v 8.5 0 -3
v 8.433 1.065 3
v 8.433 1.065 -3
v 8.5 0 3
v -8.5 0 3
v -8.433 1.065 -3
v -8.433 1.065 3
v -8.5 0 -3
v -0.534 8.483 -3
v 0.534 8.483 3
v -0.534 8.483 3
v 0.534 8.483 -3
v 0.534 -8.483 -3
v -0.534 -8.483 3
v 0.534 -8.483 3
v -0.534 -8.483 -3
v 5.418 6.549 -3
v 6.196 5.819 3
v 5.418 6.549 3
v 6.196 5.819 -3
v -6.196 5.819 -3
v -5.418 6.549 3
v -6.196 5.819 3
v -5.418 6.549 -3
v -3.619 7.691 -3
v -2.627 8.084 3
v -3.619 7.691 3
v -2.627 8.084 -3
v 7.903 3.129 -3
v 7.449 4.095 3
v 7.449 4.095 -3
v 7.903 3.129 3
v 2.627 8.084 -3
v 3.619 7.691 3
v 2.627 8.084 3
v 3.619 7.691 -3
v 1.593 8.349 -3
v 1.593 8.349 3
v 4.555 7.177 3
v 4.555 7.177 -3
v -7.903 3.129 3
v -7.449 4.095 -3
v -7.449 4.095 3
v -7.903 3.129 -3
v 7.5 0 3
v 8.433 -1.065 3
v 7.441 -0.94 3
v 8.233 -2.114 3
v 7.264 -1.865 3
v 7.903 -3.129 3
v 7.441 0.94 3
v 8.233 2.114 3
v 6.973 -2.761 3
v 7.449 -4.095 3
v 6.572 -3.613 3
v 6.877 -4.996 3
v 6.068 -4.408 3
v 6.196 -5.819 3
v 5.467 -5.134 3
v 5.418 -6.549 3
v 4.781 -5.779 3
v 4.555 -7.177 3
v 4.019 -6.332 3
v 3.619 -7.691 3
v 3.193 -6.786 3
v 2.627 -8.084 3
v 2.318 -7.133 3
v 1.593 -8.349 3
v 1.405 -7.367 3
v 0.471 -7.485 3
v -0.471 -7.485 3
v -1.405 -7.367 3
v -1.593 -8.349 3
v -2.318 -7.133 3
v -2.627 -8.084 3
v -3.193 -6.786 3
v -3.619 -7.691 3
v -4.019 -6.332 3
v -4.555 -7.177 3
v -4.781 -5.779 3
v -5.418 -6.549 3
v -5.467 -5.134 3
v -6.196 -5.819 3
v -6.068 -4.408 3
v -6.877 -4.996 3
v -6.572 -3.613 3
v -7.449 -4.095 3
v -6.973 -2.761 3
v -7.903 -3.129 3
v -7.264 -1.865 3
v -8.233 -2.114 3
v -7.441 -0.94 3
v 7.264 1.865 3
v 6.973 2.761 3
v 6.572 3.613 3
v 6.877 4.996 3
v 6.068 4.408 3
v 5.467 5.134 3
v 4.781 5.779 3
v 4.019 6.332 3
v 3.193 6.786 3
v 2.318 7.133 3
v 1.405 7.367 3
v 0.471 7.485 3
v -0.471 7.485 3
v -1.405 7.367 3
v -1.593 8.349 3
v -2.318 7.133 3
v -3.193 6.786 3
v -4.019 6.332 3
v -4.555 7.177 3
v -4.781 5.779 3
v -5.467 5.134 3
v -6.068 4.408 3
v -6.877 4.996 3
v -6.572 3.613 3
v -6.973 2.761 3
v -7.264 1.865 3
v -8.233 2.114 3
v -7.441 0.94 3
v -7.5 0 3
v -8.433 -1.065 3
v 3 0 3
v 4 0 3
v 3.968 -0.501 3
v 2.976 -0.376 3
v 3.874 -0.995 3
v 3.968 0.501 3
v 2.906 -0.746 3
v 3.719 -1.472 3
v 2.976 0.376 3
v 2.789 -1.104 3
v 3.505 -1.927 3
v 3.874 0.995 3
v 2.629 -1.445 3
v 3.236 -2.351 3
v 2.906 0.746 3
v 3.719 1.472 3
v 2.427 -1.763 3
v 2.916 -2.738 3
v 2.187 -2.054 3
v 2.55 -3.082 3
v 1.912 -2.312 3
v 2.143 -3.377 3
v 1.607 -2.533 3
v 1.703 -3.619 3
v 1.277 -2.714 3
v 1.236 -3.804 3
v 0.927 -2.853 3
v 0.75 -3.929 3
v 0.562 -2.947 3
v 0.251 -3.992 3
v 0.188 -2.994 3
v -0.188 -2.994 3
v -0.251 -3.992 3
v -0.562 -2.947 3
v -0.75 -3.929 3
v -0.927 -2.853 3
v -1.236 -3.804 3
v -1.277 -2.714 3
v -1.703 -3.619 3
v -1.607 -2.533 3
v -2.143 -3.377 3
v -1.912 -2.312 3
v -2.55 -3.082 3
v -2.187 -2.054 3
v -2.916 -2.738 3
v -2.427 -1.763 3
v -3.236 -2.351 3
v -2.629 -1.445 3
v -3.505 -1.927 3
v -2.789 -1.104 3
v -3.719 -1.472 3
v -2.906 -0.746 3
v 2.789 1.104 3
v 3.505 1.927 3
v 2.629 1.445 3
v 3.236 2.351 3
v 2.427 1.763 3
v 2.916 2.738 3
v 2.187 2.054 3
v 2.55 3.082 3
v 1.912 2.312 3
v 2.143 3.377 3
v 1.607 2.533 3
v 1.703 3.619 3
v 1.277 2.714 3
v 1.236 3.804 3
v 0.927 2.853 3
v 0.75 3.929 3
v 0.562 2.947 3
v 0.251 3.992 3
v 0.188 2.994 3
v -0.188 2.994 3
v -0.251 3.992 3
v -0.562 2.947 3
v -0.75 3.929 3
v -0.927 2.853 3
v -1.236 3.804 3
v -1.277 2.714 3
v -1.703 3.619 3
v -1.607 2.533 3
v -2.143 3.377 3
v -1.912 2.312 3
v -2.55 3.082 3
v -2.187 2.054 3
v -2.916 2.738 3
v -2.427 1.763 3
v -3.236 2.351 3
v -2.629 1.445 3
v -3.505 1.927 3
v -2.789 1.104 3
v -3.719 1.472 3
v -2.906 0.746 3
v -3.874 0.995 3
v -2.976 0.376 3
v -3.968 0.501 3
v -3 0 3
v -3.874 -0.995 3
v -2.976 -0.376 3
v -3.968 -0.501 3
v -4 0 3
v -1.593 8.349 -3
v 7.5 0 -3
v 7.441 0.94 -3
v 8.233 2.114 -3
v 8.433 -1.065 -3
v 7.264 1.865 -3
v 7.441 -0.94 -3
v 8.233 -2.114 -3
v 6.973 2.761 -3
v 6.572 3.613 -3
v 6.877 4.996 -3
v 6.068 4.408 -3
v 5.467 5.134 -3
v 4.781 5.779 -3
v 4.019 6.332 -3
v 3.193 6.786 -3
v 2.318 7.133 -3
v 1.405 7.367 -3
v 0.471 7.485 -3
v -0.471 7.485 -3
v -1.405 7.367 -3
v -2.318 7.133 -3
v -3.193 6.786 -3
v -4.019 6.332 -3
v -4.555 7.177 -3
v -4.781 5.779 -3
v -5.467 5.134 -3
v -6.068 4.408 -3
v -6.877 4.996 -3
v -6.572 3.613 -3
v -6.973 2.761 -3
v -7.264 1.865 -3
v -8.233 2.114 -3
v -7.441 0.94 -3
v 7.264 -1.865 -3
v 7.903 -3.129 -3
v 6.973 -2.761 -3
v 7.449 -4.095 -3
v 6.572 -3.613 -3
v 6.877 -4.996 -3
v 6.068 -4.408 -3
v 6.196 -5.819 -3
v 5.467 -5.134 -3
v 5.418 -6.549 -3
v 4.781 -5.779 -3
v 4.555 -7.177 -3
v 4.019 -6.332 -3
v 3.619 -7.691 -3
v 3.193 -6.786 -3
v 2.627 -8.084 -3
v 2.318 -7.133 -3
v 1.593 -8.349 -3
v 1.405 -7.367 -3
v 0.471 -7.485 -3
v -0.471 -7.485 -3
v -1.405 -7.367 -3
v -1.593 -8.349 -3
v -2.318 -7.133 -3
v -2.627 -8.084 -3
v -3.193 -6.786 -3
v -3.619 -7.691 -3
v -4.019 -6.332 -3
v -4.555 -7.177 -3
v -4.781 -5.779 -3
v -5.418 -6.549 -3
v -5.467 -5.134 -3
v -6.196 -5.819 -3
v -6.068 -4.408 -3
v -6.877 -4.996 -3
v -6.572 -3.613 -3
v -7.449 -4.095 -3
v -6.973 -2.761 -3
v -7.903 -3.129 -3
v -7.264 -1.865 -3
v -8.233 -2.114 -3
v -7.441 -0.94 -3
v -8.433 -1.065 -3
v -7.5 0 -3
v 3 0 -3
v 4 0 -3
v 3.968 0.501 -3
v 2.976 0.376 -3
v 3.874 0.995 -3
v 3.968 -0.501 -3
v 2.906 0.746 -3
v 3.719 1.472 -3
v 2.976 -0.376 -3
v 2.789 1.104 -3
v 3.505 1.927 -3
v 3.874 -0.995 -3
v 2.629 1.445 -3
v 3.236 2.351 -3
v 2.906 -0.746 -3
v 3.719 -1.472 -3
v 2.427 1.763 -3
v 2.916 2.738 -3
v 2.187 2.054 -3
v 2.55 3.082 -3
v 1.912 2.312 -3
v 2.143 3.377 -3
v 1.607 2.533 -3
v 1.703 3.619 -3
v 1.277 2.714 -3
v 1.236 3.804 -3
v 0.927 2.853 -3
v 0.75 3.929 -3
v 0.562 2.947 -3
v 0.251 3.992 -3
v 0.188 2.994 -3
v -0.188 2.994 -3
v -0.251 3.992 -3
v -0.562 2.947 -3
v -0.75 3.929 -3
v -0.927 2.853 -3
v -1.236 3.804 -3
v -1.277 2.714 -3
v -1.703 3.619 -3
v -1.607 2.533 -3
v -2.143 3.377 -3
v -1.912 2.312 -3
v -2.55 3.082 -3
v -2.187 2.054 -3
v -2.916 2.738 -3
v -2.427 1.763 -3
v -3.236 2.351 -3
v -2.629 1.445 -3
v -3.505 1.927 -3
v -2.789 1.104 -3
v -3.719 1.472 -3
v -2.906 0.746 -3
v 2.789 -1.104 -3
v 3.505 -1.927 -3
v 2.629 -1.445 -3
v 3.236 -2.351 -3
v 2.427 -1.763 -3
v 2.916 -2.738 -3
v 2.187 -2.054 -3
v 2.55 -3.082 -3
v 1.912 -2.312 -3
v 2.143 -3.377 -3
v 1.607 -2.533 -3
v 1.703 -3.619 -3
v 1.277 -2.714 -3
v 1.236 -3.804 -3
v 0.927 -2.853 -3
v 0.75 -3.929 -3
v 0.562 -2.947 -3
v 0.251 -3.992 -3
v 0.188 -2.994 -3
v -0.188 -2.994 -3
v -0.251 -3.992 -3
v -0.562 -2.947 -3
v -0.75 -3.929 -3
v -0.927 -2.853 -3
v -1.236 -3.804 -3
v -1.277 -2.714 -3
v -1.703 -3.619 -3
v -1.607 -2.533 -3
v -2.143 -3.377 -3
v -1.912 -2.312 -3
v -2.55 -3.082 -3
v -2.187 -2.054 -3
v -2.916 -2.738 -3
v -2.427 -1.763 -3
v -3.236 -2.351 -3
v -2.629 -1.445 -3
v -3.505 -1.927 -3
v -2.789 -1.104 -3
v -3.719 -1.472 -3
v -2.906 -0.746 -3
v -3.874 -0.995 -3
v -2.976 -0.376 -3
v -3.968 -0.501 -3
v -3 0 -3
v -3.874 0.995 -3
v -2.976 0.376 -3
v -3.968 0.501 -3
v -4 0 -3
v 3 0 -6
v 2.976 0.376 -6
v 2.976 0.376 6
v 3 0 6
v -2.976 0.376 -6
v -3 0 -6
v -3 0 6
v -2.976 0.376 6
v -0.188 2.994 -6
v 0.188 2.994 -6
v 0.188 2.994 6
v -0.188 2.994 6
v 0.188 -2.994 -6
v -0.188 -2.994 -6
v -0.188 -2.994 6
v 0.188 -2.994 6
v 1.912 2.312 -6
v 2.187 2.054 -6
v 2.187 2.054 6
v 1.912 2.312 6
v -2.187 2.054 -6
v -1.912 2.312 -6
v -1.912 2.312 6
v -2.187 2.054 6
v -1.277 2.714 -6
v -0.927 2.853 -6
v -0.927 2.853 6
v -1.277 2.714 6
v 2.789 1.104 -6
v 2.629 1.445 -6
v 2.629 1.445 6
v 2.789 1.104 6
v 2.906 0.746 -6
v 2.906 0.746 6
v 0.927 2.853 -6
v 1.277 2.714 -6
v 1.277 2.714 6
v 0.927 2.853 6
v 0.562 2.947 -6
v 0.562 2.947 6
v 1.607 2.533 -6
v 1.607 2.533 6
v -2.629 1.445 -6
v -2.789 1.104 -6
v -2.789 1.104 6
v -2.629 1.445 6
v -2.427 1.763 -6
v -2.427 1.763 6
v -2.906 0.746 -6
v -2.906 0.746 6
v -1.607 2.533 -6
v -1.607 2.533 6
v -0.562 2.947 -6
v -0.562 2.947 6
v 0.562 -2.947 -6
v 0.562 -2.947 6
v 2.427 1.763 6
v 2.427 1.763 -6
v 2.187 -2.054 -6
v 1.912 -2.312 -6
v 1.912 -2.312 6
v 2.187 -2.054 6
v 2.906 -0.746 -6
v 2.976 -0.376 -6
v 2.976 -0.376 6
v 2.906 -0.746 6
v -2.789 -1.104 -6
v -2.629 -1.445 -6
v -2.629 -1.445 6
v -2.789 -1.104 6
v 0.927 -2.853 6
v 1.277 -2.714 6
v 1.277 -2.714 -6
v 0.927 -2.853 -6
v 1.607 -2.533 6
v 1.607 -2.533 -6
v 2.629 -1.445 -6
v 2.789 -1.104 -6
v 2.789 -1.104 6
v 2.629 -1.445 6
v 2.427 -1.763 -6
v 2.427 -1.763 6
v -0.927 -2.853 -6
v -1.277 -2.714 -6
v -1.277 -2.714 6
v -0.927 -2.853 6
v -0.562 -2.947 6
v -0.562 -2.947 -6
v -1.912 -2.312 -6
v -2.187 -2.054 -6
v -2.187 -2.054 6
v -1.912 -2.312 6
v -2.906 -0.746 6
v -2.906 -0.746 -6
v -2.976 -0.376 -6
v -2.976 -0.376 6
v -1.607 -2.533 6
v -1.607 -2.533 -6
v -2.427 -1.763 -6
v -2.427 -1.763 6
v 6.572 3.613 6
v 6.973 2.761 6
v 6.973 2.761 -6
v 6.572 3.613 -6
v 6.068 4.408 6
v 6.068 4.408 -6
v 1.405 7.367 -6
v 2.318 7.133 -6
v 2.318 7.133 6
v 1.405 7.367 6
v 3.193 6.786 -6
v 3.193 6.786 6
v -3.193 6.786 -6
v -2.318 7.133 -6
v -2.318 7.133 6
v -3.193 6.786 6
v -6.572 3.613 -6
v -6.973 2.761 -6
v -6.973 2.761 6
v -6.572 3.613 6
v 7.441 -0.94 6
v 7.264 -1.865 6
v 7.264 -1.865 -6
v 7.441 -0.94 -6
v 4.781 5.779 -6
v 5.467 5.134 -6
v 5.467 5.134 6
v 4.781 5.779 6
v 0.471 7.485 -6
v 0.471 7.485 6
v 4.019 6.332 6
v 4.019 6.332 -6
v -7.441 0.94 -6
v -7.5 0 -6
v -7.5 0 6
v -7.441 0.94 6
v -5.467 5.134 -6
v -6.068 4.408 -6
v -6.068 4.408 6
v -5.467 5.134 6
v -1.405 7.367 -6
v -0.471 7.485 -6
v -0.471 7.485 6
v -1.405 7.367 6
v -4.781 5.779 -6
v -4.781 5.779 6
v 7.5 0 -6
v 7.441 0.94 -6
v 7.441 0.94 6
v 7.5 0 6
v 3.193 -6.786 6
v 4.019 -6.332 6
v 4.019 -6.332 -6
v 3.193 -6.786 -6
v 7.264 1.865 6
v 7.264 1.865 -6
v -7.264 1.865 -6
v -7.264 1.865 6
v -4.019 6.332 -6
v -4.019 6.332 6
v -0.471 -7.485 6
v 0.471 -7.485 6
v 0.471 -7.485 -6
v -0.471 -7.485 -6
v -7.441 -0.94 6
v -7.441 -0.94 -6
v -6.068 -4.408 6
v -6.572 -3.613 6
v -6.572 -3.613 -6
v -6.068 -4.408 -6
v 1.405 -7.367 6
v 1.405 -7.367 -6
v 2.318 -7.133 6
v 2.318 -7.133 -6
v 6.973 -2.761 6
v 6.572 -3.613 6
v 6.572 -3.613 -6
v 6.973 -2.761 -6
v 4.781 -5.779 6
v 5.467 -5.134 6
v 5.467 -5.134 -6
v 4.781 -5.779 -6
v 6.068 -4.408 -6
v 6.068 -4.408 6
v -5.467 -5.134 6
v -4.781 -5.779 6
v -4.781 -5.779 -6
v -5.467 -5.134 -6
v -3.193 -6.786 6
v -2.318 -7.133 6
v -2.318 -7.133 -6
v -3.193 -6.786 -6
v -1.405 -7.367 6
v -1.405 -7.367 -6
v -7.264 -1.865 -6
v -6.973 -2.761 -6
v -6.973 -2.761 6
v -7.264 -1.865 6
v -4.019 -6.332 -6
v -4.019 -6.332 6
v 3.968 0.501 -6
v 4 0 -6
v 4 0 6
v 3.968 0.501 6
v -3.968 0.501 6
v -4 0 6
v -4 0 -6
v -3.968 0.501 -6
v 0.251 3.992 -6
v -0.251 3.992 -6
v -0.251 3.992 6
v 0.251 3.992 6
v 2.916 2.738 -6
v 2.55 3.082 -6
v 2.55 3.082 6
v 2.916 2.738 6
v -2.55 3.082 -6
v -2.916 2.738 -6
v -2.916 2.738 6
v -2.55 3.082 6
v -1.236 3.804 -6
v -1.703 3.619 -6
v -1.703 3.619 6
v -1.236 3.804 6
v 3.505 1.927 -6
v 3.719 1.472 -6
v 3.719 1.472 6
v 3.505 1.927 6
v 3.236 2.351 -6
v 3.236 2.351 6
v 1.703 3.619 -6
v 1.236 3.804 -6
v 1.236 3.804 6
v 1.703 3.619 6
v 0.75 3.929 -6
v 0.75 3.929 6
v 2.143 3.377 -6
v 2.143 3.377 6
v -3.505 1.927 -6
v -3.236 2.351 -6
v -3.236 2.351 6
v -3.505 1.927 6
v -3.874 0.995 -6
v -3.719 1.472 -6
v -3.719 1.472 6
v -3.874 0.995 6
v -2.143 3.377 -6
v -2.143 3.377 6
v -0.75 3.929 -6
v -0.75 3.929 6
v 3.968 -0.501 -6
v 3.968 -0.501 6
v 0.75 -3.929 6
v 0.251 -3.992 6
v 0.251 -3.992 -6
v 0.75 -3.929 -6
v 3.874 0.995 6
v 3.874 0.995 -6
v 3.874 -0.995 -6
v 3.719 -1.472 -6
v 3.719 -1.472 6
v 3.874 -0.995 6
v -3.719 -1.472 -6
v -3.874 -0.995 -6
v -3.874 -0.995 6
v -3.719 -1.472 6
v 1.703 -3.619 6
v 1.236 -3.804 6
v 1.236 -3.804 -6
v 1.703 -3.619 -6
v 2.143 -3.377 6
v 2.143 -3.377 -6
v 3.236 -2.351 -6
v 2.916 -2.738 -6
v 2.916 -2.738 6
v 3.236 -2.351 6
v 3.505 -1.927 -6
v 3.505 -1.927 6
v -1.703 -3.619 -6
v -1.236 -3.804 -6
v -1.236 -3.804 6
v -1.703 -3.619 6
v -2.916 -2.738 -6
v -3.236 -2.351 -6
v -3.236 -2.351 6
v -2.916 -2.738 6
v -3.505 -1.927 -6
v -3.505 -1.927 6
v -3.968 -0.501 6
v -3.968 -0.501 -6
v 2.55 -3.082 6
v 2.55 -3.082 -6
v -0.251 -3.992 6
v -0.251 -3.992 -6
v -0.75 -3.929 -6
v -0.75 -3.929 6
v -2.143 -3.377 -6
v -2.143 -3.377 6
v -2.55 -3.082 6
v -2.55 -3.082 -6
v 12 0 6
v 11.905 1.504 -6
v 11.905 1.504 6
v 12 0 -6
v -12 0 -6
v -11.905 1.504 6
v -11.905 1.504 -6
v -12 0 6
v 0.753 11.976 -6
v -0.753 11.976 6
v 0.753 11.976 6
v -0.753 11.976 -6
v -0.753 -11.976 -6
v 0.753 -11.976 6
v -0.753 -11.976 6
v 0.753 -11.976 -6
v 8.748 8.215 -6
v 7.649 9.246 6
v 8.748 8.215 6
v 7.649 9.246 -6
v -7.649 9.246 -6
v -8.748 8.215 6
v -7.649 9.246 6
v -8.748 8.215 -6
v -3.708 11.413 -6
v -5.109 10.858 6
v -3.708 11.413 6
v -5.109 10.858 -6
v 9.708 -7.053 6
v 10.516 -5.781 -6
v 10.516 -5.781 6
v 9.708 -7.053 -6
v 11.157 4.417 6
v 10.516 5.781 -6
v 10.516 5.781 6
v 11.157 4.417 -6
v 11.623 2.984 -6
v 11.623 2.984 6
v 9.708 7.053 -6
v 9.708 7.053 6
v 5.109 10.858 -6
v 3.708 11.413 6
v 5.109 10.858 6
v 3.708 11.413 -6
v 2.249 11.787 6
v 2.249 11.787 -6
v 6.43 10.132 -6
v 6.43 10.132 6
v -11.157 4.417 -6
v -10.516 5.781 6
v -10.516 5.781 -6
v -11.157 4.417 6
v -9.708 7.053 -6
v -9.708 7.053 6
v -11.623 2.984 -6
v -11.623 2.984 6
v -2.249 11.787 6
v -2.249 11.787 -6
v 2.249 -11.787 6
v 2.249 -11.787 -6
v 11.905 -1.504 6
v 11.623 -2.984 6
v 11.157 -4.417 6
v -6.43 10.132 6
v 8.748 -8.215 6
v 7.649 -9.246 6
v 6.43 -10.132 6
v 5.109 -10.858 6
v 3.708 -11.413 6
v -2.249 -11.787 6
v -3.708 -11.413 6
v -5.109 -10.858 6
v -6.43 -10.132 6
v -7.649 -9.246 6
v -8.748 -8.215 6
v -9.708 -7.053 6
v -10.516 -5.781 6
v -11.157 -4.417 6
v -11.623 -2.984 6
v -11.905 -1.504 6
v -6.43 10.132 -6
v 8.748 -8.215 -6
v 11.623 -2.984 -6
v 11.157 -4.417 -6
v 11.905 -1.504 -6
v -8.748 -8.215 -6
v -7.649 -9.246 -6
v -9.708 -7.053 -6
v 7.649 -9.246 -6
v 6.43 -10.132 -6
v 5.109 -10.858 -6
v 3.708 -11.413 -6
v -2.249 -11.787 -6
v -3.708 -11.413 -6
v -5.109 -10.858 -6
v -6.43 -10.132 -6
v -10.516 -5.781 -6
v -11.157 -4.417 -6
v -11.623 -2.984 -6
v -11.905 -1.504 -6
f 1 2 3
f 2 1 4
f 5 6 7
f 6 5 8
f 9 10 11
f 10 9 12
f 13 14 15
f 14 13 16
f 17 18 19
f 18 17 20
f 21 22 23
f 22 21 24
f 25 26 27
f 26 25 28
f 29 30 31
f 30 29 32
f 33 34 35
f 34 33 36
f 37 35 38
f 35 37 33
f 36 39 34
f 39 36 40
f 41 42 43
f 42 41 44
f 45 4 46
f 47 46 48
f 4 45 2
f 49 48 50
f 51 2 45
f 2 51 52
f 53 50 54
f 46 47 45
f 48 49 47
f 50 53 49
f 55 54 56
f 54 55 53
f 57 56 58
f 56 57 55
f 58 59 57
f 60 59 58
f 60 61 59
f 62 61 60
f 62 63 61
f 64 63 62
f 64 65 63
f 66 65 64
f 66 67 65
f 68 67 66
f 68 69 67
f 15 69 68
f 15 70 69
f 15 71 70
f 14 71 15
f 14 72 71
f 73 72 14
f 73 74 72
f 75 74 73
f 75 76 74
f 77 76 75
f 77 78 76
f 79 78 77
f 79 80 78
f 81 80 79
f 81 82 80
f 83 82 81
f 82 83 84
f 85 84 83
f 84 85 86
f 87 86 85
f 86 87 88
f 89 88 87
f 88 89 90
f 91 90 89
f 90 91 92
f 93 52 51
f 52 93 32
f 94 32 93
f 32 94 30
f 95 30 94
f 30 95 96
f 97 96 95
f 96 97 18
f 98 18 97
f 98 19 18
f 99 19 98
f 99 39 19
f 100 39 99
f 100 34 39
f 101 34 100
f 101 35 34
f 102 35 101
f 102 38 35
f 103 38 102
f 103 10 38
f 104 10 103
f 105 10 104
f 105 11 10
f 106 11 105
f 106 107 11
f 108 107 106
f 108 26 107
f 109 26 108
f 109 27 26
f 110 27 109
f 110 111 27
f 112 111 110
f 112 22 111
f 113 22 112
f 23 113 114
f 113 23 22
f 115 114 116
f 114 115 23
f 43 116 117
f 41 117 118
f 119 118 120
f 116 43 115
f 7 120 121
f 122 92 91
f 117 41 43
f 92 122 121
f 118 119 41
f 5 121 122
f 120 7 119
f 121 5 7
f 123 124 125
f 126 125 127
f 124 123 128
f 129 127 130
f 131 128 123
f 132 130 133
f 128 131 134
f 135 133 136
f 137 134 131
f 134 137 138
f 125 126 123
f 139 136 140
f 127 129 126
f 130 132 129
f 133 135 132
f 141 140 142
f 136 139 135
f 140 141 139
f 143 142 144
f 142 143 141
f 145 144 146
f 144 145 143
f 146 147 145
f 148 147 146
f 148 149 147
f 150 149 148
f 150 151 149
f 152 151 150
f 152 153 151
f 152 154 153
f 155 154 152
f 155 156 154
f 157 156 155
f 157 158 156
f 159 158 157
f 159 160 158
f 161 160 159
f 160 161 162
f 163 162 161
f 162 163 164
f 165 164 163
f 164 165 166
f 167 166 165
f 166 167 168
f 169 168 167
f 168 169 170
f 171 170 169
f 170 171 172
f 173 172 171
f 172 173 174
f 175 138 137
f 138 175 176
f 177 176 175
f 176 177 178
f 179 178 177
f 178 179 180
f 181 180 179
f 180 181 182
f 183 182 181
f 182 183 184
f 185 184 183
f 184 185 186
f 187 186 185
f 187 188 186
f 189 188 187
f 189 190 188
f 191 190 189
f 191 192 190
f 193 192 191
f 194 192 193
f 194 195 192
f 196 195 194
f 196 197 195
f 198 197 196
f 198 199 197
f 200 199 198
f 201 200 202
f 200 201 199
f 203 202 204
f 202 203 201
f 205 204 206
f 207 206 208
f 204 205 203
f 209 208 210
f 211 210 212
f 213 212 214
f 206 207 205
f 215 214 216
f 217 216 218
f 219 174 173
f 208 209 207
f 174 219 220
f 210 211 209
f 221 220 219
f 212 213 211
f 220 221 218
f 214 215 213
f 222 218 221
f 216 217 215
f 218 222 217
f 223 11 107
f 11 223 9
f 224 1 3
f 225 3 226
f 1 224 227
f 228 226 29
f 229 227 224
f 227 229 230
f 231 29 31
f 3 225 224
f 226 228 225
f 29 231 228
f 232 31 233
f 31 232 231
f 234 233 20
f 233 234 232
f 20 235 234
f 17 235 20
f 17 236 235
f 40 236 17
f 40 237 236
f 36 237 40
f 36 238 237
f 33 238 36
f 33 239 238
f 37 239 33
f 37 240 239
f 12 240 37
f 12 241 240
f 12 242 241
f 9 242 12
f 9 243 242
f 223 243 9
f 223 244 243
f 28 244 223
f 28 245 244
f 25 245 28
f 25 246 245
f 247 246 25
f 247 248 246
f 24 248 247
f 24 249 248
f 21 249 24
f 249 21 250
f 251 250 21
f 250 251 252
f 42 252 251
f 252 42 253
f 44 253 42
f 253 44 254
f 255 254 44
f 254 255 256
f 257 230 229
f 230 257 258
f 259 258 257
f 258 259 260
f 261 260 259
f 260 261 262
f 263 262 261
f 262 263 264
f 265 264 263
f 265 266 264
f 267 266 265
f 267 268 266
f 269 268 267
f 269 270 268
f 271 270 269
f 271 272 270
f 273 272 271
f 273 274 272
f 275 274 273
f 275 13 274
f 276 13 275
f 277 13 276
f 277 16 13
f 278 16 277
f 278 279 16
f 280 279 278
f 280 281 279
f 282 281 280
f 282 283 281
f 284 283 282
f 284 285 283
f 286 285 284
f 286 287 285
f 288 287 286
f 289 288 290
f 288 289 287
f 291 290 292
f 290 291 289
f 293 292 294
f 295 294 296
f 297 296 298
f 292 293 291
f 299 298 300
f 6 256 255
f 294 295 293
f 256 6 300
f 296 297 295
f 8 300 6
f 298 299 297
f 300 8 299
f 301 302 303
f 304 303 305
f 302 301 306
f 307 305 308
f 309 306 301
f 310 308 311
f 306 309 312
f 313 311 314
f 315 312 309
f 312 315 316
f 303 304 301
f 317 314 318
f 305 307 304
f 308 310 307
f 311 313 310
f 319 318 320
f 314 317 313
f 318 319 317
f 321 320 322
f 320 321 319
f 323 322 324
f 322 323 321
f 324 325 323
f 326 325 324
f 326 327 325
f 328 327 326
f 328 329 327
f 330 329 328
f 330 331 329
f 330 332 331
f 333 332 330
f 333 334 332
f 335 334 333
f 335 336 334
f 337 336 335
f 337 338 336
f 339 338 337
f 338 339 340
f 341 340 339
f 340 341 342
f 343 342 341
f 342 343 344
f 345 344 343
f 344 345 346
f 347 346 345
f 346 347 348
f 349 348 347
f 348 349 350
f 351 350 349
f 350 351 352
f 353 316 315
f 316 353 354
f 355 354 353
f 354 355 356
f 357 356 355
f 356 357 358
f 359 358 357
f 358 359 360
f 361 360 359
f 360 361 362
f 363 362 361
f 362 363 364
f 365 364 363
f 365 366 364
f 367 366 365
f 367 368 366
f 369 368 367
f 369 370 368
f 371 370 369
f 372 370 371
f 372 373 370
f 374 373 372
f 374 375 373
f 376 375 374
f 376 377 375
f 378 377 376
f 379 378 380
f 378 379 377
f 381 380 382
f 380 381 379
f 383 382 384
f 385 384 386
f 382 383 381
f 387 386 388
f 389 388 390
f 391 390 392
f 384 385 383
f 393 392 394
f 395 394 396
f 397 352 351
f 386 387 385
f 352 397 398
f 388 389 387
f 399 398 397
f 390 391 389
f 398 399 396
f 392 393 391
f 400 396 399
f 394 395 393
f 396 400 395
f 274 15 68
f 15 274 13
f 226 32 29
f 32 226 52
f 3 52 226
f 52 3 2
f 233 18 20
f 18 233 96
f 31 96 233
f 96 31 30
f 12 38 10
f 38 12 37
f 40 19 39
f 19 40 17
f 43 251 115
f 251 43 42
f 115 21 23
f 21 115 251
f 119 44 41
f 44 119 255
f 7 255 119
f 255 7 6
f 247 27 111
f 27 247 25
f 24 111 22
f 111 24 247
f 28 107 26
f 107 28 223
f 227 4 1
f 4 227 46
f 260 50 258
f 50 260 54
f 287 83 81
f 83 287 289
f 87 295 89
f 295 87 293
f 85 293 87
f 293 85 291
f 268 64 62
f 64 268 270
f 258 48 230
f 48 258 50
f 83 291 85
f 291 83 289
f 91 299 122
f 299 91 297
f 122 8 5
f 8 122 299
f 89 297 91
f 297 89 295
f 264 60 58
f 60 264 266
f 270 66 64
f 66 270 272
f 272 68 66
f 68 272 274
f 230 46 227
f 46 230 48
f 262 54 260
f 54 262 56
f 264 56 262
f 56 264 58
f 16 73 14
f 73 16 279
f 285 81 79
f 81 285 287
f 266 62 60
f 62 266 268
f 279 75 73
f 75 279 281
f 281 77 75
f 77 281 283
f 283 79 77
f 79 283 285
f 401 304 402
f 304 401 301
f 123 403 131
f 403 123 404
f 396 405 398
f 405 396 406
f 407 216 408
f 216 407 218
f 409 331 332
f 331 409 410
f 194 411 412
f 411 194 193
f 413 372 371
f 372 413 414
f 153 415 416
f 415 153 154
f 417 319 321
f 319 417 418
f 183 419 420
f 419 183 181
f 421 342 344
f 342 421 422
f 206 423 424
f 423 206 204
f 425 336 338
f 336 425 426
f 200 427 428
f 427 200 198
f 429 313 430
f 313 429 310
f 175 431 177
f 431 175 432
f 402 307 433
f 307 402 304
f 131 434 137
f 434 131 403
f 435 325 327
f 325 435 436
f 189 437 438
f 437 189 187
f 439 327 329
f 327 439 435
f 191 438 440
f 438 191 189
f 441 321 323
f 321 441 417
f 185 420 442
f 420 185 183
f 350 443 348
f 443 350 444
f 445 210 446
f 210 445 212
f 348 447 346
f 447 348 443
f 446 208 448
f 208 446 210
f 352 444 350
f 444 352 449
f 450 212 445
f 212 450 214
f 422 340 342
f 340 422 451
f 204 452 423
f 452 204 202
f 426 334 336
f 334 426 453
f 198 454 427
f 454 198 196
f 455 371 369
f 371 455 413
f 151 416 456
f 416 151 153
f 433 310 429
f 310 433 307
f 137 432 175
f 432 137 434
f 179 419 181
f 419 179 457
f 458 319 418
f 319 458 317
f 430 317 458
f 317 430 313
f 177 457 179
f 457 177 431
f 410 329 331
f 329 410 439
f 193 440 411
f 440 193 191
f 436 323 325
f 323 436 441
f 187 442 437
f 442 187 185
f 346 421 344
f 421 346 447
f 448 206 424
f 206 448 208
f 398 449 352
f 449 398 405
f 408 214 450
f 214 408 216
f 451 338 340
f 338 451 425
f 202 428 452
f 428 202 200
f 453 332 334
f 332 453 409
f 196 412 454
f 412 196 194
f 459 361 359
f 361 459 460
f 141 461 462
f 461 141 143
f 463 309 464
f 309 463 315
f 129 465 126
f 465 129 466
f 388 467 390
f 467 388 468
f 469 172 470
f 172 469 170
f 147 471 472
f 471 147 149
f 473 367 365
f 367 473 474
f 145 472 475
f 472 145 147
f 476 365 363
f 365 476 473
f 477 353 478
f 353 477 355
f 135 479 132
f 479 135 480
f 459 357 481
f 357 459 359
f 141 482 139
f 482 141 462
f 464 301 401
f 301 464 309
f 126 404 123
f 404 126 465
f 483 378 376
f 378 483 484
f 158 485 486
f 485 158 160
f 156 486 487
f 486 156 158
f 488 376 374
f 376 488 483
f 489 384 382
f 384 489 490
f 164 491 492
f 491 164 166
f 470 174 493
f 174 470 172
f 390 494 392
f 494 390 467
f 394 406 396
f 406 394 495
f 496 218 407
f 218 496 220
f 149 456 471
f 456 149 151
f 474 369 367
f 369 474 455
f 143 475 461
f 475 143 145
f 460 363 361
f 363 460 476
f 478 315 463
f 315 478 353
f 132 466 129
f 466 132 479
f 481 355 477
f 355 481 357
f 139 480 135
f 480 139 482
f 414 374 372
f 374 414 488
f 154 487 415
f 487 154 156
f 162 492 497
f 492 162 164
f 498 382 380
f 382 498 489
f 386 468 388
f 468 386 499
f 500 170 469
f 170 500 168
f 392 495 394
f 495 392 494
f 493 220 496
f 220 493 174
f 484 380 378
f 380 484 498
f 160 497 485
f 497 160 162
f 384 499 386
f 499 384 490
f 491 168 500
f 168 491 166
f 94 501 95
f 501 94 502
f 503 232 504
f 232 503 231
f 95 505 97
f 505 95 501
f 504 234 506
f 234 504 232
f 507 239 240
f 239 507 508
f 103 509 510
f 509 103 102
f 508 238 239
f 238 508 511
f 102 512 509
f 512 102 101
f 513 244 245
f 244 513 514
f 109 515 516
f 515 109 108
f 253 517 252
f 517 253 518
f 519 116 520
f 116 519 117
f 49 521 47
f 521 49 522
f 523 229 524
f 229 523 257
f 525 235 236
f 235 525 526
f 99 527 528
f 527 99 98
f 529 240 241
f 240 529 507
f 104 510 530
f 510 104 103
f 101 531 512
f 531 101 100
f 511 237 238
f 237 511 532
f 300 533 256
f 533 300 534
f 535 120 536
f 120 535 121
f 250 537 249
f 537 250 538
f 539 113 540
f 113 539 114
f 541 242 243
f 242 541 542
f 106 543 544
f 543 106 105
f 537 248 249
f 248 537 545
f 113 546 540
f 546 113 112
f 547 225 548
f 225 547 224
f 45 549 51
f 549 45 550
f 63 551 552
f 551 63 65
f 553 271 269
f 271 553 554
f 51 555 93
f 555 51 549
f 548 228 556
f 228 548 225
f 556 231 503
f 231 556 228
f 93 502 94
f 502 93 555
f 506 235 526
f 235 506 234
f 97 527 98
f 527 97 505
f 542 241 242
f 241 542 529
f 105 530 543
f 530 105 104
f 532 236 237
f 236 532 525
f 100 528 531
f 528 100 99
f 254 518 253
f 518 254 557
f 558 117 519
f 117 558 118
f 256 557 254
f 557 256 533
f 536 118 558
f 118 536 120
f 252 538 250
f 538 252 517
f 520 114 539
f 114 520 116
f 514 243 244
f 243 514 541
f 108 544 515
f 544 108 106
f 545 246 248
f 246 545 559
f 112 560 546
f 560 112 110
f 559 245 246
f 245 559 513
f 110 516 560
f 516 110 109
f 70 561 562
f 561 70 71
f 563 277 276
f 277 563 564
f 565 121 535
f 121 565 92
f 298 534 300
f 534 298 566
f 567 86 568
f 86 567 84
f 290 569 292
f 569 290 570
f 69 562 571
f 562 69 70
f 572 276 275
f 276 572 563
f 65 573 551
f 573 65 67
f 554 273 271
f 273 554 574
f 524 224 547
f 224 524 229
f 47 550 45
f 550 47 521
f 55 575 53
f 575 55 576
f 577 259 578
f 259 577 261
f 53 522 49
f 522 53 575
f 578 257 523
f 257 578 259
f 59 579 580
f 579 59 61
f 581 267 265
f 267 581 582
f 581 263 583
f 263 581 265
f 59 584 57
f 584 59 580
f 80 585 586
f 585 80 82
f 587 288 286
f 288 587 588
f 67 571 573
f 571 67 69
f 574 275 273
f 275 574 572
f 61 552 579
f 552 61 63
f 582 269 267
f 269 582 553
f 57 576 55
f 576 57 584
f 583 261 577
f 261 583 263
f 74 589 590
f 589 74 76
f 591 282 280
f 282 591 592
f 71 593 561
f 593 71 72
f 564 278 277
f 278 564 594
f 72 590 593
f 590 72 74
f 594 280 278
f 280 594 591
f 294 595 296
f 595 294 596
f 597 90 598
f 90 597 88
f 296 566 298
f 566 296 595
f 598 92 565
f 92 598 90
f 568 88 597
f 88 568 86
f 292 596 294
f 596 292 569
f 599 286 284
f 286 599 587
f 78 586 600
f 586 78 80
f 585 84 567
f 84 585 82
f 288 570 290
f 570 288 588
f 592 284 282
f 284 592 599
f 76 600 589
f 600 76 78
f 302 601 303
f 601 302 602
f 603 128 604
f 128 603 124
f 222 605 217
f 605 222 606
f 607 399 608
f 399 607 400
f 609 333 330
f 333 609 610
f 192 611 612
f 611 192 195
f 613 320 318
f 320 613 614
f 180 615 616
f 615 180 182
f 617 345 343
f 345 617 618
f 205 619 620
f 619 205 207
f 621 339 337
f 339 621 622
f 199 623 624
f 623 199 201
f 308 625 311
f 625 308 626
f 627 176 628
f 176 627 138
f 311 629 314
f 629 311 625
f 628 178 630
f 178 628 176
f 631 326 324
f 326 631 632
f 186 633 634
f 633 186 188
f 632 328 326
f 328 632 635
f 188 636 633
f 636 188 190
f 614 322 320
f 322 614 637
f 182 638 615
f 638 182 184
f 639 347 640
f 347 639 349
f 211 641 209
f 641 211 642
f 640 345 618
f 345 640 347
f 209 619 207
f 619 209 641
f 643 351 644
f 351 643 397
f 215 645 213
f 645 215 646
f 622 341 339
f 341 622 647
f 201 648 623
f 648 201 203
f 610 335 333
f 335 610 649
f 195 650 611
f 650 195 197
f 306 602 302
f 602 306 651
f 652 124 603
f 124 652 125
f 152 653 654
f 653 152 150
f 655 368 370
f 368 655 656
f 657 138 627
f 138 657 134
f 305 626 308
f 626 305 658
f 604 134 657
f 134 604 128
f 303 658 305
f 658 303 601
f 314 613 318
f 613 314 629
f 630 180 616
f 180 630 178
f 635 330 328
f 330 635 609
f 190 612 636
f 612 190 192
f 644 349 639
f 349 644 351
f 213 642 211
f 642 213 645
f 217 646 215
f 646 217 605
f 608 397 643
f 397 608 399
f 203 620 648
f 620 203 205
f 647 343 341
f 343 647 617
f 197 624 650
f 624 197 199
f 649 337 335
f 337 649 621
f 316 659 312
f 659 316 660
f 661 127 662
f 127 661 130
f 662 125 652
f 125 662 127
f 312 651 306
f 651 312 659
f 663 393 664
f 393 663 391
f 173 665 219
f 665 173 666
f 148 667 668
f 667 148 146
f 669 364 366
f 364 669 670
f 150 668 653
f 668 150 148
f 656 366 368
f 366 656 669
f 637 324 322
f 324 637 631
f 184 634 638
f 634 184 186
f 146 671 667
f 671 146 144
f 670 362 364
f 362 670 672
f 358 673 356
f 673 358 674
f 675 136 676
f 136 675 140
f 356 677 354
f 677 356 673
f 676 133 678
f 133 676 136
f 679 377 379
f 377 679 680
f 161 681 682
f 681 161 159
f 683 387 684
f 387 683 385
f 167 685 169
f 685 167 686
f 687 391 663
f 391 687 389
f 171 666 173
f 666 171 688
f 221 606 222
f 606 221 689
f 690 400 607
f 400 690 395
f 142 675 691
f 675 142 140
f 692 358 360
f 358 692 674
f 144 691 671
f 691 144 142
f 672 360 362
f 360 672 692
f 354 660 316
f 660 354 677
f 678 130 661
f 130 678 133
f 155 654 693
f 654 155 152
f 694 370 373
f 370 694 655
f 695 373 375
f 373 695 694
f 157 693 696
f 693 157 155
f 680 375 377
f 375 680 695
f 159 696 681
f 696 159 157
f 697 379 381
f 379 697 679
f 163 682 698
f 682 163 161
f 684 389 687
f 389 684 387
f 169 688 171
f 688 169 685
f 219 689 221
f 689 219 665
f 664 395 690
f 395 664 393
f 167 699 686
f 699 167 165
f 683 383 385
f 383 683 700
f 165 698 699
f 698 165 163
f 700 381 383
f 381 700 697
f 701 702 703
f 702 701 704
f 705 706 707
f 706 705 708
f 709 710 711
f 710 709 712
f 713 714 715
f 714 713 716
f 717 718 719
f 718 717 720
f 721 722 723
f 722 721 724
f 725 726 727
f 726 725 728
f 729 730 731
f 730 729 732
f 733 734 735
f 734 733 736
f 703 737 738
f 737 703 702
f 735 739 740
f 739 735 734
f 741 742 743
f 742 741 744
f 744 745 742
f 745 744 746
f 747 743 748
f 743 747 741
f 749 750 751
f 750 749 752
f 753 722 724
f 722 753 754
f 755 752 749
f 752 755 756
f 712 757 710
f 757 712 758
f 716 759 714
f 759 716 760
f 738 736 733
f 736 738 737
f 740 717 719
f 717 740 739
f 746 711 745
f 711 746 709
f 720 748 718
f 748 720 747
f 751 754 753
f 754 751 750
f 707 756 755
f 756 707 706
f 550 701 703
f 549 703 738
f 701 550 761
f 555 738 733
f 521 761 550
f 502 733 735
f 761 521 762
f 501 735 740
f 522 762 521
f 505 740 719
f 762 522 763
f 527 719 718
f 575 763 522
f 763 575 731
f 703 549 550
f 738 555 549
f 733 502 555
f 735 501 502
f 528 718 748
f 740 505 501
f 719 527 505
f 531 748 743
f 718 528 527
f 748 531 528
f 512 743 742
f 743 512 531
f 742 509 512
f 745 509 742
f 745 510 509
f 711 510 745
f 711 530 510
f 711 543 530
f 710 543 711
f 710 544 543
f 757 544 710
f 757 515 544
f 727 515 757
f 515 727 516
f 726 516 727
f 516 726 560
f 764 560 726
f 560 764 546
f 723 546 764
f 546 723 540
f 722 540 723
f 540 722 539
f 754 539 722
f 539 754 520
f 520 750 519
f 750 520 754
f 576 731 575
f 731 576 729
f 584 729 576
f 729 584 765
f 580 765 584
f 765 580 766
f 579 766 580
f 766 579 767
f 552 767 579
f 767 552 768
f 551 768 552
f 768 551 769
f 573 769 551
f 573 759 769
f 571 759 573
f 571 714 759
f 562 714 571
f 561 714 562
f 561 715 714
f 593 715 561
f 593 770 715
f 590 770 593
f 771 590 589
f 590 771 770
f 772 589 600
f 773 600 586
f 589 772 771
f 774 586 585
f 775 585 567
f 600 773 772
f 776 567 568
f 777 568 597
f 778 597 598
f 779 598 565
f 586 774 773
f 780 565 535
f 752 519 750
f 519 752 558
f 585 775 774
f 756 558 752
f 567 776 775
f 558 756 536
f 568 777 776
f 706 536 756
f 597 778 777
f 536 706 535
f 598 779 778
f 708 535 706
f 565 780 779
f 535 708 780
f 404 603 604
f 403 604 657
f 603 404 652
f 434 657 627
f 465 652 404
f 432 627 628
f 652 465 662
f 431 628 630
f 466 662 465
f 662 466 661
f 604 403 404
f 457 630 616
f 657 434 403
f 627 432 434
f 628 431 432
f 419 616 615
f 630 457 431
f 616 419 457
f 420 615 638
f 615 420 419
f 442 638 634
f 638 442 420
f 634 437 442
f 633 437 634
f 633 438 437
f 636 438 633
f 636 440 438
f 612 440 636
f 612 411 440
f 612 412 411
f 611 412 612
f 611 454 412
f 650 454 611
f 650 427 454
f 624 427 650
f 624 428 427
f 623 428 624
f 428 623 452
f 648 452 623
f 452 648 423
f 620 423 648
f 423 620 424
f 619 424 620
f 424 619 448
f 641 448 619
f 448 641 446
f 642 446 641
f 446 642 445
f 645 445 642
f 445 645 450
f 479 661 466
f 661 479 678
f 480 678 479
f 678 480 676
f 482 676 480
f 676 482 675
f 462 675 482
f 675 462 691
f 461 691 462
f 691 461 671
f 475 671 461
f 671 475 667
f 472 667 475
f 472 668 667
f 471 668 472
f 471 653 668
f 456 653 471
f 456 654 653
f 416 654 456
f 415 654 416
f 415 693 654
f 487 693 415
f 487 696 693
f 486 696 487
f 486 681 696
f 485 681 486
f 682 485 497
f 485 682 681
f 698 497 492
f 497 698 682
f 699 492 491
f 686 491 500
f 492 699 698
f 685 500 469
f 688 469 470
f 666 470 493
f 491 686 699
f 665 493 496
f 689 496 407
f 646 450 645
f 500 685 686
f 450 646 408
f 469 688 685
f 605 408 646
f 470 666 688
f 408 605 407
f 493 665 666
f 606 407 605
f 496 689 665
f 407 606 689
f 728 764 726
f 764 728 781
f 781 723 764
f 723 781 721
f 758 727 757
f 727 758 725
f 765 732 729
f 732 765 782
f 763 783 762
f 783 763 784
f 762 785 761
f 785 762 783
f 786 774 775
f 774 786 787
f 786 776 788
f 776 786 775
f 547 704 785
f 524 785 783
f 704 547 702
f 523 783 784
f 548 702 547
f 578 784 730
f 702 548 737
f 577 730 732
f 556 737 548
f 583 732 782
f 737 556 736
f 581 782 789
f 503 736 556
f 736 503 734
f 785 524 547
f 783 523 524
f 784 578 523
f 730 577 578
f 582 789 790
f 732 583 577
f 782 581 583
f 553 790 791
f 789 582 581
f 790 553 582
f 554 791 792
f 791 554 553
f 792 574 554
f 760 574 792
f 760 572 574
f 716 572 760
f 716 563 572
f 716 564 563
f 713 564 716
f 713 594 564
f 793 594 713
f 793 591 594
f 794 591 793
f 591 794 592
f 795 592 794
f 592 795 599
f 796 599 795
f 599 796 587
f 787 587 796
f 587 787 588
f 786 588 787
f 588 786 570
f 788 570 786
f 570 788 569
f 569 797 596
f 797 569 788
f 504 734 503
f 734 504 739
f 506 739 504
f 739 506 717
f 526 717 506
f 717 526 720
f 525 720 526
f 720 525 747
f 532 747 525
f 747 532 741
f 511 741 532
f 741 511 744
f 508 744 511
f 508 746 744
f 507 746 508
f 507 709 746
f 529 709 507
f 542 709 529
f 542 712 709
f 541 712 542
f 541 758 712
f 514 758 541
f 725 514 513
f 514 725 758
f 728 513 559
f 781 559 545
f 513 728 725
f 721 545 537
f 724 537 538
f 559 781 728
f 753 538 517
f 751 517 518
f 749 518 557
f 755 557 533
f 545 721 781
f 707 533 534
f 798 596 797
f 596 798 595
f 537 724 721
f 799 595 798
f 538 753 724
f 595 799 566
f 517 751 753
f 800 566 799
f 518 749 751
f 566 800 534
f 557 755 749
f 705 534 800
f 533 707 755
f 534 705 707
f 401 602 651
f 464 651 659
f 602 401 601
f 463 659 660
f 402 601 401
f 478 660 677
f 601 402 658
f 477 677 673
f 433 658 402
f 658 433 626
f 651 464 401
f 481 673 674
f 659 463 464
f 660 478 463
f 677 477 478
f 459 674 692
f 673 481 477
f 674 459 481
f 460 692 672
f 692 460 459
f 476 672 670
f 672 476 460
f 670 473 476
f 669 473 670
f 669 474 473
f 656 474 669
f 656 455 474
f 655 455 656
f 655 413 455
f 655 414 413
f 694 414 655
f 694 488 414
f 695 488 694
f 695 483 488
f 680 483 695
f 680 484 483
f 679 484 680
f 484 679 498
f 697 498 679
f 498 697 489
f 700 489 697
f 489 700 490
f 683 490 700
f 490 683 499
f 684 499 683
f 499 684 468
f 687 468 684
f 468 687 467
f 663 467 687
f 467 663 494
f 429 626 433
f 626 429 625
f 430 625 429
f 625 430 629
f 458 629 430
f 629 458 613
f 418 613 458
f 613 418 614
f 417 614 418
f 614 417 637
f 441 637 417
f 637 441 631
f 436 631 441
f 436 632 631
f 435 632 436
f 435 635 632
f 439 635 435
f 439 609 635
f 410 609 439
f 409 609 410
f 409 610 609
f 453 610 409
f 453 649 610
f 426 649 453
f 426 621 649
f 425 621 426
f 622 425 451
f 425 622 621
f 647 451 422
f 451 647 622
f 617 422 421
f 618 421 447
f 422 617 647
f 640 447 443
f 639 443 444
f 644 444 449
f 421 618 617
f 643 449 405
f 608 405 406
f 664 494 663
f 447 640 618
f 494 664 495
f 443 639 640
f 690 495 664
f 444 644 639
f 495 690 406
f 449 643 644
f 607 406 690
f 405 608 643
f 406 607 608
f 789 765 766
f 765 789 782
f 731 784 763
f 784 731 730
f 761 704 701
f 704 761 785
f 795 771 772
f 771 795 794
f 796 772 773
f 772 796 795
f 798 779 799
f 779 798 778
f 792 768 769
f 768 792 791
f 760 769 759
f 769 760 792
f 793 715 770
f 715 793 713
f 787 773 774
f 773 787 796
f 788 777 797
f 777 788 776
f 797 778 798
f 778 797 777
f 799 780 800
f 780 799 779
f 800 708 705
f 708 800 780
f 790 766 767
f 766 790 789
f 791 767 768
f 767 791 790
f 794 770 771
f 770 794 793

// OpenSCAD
$fn = 50;


difference() {
	union() {
		translate(v = [0, 0, -6.0000000000]) {
			rotate(a = [0, 0, 0]) {
				cylinder(h = 12, r = 12.0000000000);
			}
		}
	}
	union() {
		translate(v = [0, 0, 0]) {
			rotate(a = [0, 0, 0]) {
				translate(v = [0, 0, -3.0000000000]) {
					union() {
						difference() {
							translate(v = [0, 0, 0]) {
								rotate(a = [0, 0, 0]) {
									cylinder(h = 6, r = 8.5000000000);
								}
							}
							translate(v = [0, 0, 0]) {
								rotate(a = [0, 0, 0]) {
									cylinder(h = 6, r = 3.0000000000);
								}
							}
						}
						difference() {
							translate(v = [0, 0, -50]) {
								rotate(a = [0, 0, 0]) {
									cylinder(h = 100, r = 7.5000000000);
								}
							}
							translate(v = [0, 0, -50]) {
								rotate(a = [0, 0, 0]) {
									cylinder(h = 100, r = 4.0000000000);
								}
							}
						}
					}
				}
			}
		}
		translate(v = [-15.0000000000, -15.0000000000, -125.0000000000]) {
			rotate(a = [0, 0, 0]) {
				cylinder(h = 250, r = 3.0000000000);
			}
		}
		translate(v = [-15.0000000000, 15.0000000000, -125.0000000000]) {
			rotate(a = [0, 0, 0]) {
				cylinder(h = 250, r = 3.0000000000);
			}
		}
		translate(v = [15.0000000000, -15.0000000000, -125.0000000000]) {
			rotate(a = [0, 0, 0]) {
				cylinder(h = 250, r = 3.0000000000);
			}
		}
		translate(v = [15.0000000000, 15.0000000000, -125.0000000000]) {
			rotate(a = [0, 0, 0]) {
				cylinder(h = 250, r = 3.0000000000);
			}
		}
		translate(v = [0, 0, -125.0000000000]) {
			rotate(a = [0, 0, 0]) {
				cylinder(h = 250, r = 3.0000000000);
			}
		}
		translate(v = [15.0000000000, 0.0000000000, 3.0000000000]) {
			rotate(a = [0, 0, 15.0000000000]) {
				cylinder(h = 3, r1 = 2.4000000000, r2 = 2.4000000000);
			}
		}
		translate(v = [15.0000000000, 0.0000000000, -6.0000000000]) {
			rotate(a = [0, 0, 15.0000000000]) {
				cylinder(h = 3, r1 = 2.4000000000, r2 = 2.4000000000);
			}
		}
		translate(v = [15.0000000000, 0.0000000000, -3.0000000000]) {
			rotate(a = [0, 0, 15.0000000000]) {
				cylinder(h = 6, r = 1.5000000000);
			}
		}
		translate(v = [15.0000000000, 0.0000000000, -3.0000000000]) {
			rotate(a = [0, 0, 15.0000000000]) {
				translate(v = [0, 0, 0]) {
					rotate(a = [0, 0, 15.0000000000]) {
						linear_extrude(height = 6) {
							polygon(points = [[3.3466000000, 0.0000000000], [1.6733000000, 2.8982406163], [-1.6733000000, 2.8982406163], [-3.3466000000, 0.0000000000], [-1.6733000000, -2.8982406163], [1.6733000000, -2.8982406163]]);
						}
					}
				}
			}
		}
		translate(v = [15.0000000000, 0.0000000000, -6.0000000000]) {
			rotate(a = [0, 0, 15.0000000000]) {
				cylinder(h = 12, r = 1.5000000000);
			}
		}
		translate(v = [0.0000000000, -15.0000000000, -3.0000000000]) {
			rotate(a = [0, 180, 0]) {
				cylinder(h = 3, r1 = 2.4000000000, r2 = 2.4000000000);
			}
		}
		translate(v = [0.0000000000, -15.0000000000, 6.0000000000]) {
			rotate(a = [0, 180, 0]) {
				cylinder(h = 3, r1 = 2.4000000000, r2 = 2.4000000000);
			}
		}
		translate(v = [0.0000000000, -15.0000000000, 9.0000000000]) {
			rotate(a = [0, 180, 0]) {
				cylinder(h = 6, r = 1.5000000000);
			}
		}
		translate(v = [0.0000000000, -15.0000000000, 9.0000000000]) {
			rotate(a = [0, 180, 0]) {
				translate(v = [0, 0, 0]) {
					rotate(a = [0, 180, 0]) {
						linear_extrude(height = 6) {
							polygon(points = [[3.3466000000, 0.0000000000], [1.6733000000, 2.8982406163], [-1.6733000000, 2.8982406163], [-3.3466000000, 0.0000000000], [-1.6733000000, -2.8982406163], [1.6733000000, -2.8982406163]]);
						}
					}
				}
			}
		}
		translate(v = [0.0000000000, -15.0000000000, 6.0000000000]) {
			rotate(a = [0, 180, 0]) {
				cylinder(h = 12, r = 1.5000000000);
			}
		}
		translate(v = [-15.0000000000, 0.0000000000, 3.0000000000]) {
			rotate(a = [0, 0, 15.0000000000]) {
				cylinder(h = 3, r1 = 2.4000000000, r2 = 2.4000000000);
			}
		}
		translate(v = [-15.0000000000, 0.0000000000, -6.0000000000]) {
			rotate(a = [0, 0, 15.0000000000]) {
				cylinder(h = 3, r1 = 2.4000000000, r2 = 2.4000000000);
			}
		}
		translate(v = [-15.0000000000, 0.0000000000, -3.0000000000]) {
			rotate(a = [0, 0, 15.0000000000]) {
				cylinder(h = 6, r = 1.5000000000);
			}
		}
		translate(v = [-15.0000000000, 0.0000000000, -3.0000000000]) {
			rotate(a = [0, 0, 15.0000000000]) {
				translate(v = [0, 0, 0]) {
					rotate(a = [0, 0, 15.0000000000]) {
						linear_extrude(height = 6) {
							polygon(points = [[3.3466000000, 0.0000000000], [1.6733000000, 2.8982406163], [-1.6733000000, 2.8982406163], [-3.3466000000, 0.0000000000], [-1.6733000000, -2.8982406163], [1.6733000000, -2.8982406163]]);
						}
					}
				}
			}
		}
		translate(v = [-15.0000000000, 0.0000000000, -6.0000000000]) {
			rotate(a = [0, 0, 15.0000000000]) {
				cylinder(h = 12, r = 1.5000000000);
			}
		}
		translate(v = [0.0000000000, 15.0000000000, -3.0000000000]) {
			rotate(a = [0, 180, 0]) {
				cylinder(h = 3, r1 = 2.4000000000, r2 = 2.4000000000);
			}
		}
		translate(v = [0.0000000000, 15.0000000000, 6.0000000000]) {
			rotate(a = [0, 180, 0]) {
				cylinder(h = 3, r1 = 2.4000000000, r2 = 2.4000000000);
			}
		}
		translate(v = [0.0000000000, 15.0000000000, 9.0000000000]) {
			rotate(a = [0, 180, 0]) {
				cylinder(h = 6, r = 1.5000000000);
			}
		}
		translate(v = [0.0000000000, 15.0000000000, 9.0000000000]) {
			rotate(a = [0, 180, 0]) {
				translate(v = [0, 0, 0]) {
					rotate(a = [0, 180, 0]) {
						linear_extrude(height = 6) {
							polygon(points = [[3.3466000000, 0.0000000000], [1.6733000000, 2.8982406163], [-1.6733000000, 2.8982406163], [-3.3466000000, 0.0000000000], [-1.6733000000, -2.8982406163], [1.6733000000, -2.8982406163]]);
						}
					}
				}
			}
		}
		translate(v = [0.0000000000, 15.0000000000, 6.0000000000]) {
			rotate(a = [0, 180, 0]) {
				cylinder(h = 12, r = 1.5000000000);
			}
		}
	}
}
